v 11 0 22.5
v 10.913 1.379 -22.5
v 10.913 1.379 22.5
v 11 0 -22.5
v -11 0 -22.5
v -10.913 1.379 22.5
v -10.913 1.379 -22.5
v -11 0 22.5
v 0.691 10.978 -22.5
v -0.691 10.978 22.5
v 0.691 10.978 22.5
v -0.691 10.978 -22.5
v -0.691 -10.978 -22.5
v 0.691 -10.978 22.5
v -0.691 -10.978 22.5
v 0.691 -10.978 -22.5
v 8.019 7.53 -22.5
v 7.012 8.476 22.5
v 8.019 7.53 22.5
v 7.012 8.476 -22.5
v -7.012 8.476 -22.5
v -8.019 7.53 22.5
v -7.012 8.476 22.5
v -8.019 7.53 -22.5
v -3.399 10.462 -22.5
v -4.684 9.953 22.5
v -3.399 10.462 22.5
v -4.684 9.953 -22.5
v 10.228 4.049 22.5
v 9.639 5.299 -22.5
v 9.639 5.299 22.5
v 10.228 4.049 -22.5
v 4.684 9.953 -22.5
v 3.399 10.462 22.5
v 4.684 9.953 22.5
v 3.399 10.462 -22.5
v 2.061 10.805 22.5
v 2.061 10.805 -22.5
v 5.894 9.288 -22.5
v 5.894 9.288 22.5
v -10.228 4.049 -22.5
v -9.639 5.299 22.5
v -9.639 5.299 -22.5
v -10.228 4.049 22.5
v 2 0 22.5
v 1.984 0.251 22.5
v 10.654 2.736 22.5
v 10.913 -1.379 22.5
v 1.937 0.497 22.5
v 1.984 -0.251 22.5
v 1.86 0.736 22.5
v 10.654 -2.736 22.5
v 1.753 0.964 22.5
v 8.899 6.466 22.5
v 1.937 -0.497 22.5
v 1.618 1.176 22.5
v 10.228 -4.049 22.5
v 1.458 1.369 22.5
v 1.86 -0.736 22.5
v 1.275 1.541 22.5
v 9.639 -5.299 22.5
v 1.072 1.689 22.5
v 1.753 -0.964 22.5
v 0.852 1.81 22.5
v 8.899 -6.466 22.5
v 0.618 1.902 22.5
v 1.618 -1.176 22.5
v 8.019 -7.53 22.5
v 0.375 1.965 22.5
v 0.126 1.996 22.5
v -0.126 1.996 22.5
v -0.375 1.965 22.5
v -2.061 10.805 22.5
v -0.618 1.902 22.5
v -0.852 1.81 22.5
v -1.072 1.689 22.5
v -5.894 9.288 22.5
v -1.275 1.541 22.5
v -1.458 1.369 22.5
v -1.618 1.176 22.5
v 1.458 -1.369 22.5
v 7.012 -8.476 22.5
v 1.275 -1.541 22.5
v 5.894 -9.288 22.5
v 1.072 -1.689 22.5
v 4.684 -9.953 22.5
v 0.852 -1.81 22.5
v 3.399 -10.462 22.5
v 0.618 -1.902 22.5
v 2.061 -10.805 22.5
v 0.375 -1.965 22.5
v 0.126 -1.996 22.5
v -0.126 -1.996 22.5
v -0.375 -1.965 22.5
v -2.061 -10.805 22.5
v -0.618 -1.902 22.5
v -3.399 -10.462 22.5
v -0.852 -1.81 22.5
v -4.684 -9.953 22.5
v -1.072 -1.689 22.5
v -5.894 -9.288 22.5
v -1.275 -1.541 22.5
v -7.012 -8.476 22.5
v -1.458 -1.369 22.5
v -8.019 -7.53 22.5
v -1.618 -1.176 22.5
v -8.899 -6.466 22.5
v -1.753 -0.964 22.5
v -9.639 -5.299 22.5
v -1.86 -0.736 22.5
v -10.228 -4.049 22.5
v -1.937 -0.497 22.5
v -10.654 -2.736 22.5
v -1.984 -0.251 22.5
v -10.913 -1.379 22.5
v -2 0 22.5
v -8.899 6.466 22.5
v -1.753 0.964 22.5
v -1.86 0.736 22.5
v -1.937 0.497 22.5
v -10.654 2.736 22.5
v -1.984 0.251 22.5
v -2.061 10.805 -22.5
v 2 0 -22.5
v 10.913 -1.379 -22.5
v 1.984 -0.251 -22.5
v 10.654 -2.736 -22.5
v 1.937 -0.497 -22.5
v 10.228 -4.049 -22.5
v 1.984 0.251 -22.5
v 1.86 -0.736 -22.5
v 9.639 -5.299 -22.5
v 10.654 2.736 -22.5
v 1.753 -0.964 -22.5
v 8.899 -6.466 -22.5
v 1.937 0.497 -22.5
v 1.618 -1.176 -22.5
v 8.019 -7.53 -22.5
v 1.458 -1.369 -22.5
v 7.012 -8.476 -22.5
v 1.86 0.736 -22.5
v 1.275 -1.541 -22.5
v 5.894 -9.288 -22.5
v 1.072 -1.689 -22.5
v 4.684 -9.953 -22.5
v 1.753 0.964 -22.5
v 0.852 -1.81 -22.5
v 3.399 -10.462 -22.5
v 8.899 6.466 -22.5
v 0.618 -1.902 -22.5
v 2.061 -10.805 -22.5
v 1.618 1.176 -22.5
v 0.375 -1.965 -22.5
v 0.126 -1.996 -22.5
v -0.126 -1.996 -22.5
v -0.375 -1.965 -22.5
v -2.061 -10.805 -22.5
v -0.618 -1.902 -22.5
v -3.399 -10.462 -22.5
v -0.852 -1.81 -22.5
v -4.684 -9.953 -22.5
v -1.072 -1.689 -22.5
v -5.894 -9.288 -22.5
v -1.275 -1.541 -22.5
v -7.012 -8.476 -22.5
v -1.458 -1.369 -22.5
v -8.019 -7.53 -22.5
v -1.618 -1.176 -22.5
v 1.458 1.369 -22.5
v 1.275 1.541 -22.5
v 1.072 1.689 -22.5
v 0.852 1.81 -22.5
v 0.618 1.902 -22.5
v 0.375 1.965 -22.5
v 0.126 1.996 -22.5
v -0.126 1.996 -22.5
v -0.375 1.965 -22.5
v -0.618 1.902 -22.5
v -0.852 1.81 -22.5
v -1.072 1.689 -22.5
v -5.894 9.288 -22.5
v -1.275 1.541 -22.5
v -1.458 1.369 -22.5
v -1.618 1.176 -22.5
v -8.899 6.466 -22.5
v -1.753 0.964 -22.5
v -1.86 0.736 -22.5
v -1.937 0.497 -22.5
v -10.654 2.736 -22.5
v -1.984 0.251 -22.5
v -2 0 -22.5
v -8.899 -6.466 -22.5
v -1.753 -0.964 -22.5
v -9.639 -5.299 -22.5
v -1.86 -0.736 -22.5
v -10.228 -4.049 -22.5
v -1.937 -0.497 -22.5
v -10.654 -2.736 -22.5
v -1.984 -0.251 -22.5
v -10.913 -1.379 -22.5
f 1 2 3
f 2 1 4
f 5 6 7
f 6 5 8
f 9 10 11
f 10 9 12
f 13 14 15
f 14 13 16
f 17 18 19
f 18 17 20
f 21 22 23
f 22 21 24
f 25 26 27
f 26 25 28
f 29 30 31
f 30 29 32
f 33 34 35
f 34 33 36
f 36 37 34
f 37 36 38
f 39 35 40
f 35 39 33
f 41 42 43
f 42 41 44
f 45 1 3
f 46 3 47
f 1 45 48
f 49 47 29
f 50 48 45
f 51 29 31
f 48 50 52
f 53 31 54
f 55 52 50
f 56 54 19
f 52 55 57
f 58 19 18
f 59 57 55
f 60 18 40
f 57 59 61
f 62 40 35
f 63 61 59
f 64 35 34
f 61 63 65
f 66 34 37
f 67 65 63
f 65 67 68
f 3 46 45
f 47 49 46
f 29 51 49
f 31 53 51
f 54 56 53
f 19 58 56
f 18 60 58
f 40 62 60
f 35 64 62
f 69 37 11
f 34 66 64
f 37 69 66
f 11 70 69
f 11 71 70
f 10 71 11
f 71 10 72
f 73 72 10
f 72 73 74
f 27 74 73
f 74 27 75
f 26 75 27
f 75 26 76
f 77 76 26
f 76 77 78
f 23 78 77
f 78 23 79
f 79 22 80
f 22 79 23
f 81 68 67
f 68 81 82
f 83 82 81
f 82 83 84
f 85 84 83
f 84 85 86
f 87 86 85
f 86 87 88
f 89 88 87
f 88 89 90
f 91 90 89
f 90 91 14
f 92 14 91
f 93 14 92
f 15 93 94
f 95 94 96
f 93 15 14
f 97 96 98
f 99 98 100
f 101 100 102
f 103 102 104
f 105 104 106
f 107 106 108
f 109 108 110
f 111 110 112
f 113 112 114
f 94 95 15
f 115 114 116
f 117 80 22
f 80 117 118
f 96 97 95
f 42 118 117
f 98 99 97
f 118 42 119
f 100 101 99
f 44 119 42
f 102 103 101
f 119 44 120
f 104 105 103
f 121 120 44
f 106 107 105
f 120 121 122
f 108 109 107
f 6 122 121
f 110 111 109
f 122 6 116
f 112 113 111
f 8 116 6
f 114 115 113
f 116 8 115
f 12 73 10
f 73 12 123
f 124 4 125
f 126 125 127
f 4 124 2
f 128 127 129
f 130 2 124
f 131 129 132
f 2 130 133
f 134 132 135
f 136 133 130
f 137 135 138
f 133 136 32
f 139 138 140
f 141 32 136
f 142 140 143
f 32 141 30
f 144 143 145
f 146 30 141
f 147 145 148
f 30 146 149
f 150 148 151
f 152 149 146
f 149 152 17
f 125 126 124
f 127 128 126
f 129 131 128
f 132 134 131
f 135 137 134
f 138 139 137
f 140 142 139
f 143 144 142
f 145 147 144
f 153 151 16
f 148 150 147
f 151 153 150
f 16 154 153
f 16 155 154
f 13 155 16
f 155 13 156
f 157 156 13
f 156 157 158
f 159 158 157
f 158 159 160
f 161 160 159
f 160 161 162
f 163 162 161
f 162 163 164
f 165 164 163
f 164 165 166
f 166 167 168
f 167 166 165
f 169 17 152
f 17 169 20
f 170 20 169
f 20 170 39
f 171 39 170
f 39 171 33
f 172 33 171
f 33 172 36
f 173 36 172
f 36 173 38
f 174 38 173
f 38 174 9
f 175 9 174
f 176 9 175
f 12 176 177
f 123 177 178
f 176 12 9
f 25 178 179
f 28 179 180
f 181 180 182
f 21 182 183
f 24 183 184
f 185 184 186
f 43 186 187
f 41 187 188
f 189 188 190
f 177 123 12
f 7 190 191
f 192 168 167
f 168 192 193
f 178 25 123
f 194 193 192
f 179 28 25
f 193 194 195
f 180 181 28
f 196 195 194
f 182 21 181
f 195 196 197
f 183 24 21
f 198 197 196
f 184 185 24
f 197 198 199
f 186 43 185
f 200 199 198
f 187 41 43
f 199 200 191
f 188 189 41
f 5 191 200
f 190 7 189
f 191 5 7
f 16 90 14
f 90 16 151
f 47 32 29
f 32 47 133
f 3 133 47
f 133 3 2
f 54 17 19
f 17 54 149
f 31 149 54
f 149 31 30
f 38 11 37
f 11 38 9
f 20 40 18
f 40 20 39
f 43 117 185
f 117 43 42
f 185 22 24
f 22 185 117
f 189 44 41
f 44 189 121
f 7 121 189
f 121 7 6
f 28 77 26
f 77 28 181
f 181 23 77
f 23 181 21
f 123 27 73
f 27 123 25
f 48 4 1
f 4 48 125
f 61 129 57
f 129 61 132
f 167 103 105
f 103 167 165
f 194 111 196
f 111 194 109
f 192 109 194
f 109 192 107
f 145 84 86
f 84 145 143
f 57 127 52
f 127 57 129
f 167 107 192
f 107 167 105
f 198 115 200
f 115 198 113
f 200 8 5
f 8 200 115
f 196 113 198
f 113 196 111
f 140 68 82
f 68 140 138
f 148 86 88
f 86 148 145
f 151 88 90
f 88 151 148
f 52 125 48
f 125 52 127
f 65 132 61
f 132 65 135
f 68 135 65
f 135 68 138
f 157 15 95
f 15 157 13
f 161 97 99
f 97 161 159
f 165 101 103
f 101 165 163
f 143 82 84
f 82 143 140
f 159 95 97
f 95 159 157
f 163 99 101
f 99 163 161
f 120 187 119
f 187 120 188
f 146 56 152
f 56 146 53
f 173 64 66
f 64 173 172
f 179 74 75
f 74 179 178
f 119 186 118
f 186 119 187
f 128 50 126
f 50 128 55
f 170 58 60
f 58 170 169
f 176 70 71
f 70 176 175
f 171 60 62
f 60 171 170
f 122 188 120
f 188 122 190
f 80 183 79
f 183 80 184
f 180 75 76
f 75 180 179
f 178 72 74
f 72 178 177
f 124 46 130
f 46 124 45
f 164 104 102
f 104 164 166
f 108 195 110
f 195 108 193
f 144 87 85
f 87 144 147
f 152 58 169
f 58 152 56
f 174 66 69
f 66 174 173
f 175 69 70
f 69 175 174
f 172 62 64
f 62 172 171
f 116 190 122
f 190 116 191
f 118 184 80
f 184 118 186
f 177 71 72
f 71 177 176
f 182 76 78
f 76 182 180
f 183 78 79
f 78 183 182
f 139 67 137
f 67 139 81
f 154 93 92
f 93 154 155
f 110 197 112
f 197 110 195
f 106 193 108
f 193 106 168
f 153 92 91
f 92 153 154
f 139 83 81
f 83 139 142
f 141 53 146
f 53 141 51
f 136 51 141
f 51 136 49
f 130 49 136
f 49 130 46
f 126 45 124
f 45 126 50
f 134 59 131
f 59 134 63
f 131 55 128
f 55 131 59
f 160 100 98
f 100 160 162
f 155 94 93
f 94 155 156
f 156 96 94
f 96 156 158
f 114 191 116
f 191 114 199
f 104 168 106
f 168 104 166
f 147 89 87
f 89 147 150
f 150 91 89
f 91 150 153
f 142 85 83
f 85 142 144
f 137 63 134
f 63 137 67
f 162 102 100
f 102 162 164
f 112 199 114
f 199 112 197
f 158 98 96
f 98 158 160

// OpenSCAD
$fn = 50;


difference() {
	union() {
		translate(v = [0, 0, -22.5000000000]) {
			cylinder(h = 45, r = 11.0000000000);
		}
	}
	union() {
		translate(v = [0, 0, -100.0000000000]) {
			cylinder(h = 200, r = 2);
		}
	}
}
